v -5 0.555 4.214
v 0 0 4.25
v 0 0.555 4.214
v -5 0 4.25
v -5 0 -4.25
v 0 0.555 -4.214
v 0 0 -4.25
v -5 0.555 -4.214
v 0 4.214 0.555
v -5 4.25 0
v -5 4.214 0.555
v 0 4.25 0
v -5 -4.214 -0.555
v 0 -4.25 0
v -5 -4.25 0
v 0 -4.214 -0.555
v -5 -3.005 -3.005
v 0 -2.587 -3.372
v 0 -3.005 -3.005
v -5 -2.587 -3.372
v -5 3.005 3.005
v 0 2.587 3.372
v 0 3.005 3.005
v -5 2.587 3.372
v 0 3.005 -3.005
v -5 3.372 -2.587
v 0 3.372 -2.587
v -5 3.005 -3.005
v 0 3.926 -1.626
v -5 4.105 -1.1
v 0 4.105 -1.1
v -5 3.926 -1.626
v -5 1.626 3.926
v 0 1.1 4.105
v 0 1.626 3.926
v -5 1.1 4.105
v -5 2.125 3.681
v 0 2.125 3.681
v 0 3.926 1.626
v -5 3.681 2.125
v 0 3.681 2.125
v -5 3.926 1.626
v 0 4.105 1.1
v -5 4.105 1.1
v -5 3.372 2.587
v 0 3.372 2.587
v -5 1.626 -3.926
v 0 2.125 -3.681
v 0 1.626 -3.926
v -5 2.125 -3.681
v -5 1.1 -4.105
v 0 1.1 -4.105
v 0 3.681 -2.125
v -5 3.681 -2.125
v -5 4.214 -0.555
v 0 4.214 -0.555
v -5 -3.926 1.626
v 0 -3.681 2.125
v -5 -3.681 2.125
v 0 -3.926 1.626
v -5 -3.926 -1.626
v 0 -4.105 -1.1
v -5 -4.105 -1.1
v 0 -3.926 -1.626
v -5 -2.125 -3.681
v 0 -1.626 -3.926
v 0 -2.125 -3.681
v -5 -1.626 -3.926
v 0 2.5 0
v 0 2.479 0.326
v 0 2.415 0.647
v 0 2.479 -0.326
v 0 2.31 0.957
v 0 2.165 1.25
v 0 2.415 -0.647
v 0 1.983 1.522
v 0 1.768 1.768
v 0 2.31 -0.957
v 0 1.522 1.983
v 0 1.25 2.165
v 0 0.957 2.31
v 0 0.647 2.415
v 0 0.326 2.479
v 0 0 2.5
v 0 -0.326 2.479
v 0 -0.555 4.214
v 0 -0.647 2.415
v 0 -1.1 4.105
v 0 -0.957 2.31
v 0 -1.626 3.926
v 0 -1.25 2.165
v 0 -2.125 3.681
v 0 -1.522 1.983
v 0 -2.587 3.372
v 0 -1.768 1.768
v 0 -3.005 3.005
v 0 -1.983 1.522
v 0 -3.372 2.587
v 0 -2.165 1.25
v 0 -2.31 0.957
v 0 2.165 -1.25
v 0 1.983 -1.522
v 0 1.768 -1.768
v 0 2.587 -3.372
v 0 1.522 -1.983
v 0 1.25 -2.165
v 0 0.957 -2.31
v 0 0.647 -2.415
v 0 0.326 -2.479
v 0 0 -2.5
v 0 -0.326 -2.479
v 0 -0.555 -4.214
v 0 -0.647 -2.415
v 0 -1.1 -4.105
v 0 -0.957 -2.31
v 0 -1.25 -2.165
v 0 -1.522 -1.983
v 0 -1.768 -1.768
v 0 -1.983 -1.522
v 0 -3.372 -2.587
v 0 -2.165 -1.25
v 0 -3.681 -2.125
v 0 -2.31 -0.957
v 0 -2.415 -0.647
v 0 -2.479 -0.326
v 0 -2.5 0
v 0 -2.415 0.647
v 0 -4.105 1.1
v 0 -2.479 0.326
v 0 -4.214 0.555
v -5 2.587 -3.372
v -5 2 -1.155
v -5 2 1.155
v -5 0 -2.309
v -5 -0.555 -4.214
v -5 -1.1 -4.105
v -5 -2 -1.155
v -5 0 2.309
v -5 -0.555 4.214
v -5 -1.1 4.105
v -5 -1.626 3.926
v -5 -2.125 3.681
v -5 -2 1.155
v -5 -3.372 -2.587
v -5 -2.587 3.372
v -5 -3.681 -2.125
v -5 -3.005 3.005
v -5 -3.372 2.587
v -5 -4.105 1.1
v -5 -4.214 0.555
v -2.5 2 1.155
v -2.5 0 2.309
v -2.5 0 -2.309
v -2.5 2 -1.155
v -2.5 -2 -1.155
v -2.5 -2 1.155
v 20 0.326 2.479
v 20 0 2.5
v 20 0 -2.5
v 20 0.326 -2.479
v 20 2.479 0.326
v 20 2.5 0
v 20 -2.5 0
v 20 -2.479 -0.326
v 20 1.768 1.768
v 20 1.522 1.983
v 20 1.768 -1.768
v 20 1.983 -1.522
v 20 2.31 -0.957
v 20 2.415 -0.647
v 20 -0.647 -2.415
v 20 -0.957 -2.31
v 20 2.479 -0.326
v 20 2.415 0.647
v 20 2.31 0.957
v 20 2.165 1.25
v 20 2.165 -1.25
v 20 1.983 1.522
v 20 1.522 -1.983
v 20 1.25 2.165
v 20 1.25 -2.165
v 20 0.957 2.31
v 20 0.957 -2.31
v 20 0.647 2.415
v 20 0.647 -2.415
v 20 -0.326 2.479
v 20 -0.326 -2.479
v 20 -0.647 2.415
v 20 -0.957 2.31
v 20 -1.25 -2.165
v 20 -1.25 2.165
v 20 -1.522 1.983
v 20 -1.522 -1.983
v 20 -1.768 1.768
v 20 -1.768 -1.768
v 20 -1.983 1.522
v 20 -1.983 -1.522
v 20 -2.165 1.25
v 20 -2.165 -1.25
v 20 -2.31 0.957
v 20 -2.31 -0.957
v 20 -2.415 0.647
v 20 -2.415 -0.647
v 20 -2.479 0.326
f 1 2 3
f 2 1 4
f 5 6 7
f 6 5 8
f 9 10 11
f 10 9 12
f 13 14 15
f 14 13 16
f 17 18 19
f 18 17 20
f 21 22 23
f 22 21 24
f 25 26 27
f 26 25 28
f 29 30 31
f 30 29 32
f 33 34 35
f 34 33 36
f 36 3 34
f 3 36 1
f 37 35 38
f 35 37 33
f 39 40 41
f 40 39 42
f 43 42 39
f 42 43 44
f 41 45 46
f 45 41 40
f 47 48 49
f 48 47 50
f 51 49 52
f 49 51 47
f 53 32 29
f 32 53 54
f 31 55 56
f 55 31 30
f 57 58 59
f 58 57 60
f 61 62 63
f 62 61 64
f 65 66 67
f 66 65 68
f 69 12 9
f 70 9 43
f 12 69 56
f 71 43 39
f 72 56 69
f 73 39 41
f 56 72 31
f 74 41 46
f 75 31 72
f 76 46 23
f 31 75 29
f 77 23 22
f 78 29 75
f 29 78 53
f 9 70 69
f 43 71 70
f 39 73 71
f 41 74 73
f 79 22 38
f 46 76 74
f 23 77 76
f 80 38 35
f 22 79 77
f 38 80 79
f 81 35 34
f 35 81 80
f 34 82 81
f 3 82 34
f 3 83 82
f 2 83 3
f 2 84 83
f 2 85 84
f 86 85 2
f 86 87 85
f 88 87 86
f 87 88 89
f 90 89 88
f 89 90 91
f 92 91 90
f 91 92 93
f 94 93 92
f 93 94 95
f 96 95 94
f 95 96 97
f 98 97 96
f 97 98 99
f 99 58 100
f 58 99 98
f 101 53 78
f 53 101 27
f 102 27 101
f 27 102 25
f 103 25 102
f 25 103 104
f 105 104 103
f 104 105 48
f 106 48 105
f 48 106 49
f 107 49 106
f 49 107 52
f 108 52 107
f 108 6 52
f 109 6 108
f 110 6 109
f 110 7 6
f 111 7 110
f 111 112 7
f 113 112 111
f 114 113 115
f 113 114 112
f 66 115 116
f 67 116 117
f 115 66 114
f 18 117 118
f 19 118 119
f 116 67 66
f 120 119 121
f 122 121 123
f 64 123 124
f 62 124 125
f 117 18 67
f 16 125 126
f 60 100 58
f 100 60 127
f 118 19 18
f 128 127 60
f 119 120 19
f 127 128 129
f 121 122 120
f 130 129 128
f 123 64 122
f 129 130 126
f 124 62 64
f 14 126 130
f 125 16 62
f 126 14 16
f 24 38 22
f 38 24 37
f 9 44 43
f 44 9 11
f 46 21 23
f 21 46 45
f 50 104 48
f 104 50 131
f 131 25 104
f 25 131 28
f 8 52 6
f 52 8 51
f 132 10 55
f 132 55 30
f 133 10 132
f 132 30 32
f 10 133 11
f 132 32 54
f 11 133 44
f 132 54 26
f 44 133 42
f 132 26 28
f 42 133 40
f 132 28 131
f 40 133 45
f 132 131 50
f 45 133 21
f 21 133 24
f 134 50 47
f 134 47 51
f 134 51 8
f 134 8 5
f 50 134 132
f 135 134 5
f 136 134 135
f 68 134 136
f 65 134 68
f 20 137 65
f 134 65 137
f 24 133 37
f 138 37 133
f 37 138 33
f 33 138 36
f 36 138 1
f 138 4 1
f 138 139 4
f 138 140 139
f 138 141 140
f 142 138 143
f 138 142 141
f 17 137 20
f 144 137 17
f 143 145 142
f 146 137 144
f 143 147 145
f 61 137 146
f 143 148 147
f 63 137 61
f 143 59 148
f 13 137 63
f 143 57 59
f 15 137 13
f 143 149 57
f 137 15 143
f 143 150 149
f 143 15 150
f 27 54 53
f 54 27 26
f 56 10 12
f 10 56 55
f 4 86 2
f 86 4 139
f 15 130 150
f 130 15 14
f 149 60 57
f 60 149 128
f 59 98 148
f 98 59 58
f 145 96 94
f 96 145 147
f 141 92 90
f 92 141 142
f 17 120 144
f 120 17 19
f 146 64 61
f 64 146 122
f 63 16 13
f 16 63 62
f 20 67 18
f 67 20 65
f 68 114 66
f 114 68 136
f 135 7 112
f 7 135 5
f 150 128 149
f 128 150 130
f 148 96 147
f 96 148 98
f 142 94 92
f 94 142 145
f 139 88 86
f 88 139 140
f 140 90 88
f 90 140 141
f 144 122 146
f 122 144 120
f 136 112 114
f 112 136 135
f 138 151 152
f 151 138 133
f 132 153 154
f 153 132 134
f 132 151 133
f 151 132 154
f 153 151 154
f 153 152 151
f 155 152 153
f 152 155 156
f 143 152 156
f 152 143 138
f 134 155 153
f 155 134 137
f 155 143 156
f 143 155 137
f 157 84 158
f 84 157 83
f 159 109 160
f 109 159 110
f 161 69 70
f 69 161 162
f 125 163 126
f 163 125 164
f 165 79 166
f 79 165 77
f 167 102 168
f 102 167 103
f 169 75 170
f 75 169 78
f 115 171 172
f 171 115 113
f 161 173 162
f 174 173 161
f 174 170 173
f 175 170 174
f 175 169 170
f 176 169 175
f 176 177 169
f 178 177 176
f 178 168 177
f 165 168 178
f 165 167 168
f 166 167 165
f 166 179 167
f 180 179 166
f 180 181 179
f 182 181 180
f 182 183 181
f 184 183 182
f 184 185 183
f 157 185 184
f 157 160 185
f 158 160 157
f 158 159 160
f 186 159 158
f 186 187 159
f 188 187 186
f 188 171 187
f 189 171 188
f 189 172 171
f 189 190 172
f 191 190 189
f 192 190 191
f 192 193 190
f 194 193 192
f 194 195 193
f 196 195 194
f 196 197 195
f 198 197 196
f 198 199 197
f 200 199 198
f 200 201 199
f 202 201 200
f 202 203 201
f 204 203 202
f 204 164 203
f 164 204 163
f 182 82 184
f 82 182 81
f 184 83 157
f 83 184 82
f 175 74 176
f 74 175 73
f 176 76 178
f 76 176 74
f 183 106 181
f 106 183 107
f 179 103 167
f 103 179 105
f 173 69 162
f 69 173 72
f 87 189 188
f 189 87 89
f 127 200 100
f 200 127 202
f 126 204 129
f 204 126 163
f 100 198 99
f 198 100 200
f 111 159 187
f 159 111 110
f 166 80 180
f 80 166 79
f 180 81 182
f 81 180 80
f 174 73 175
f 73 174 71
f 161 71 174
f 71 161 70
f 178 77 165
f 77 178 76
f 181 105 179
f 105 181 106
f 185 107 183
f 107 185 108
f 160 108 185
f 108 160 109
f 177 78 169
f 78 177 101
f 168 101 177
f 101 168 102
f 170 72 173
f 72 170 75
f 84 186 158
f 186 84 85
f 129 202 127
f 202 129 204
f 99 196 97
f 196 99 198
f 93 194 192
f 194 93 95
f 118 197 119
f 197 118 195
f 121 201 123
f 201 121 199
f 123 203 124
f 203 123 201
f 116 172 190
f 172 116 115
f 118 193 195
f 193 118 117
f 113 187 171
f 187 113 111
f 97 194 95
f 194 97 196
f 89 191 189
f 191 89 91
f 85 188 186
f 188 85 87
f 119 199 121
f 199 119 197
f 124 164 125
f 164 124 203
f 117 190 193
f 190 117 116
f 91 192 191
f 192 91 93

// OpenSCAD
// file: ../../lib/nutsnbolts/data-access.scad
// Norm Nuts and Bolts - a OpenSCAD library
// Copyright (C) 2012  Johannes Kneer

// This program is free software: you can redistribute it and/or modify
// it under the terms of the GNU General Public License as published by
// the Free Software Foundation, either version 3 of the License, or
// (at your option) any later version.

// This program is distributed in the hope that it will be useful,
// but WITHOUT ANY WARRANTY; without even the implied warranty of
// MERCHANTABILITY or FITNESS FOR A PARTICULAR PURPOSE.  See the
// GNU General Public License for more details.

// You should have received a copy of the GNU General Public License
// along with this program.  If not, see <http://www.gnu.org/licenses/>.


// DATABASE ACCESS FUNCTIONS AND CONSTANTS



// == CONSTANTS ==

// screw table access keys
_NB_S_DESC            = 0;
_NB_S_FAMKEY			    = 1;
_NB_S_LENGTH          = 2;
_NB_S_NOTHREAD_LENGTH = 3;

_NB_F_DESC			      = 0;
_NB_F_OUTER_DIA       = 1;
_NB_F_INNER_DIA       = 2;
_NB_F_LEAD            = 3;
_NB_F_KEY             = 4;
_NB_F_KEY_DEPTH       = 5;
_NB_F_HEAD_HEIGHT     = 6;
_NB_F_HEAD_DIA        = 7;
_NB_F_NUT_KEY         = 8;
_NB_F_NUT_HEIGHT      = 9;
_NB_F_PITCH_FINE      = 10;
_NB_F_PITCH_MEDIUM    = 11;
_NB_F_PITCH_COARSE    = 12;


// == FUNCTIONS ==

// _get_screw("descriptor")   with descriptor = M8x25
//   find the line for a general object in the data matrix

function _get_screw(n) = data_screw[search([n], data_screw)[0]];
function _get_screw_fam(n) = data_screw_fam[search([_get_screw(n)[_NB_S_FAMKEY]], data_screw_fam)[0]];

function _get_fam(n) = data_screw_fam[search([n], data_screw_fam)[0]];


// _get_XXXXX("descriptor") functions
// find a single property in the database

function _get_desc(n)        = _get_screw(n)[_NB_S_DESC];
function _get_famkey(n)         = _get_screw(n)[_NB_S_FAMKEY];
function _get_length(n)      = _get_screw(n)[_NB_S_LENGTH];
function _get_nt_length(n)   = _get_screw(n)[_NB_S_NOTHREAD_LENGTH];

function _get_outer_dia(n)   = _get_screw_fam(n)[_NB_F_OUTER_DIA];
function _get_inner_dia(n)   = _get_screw_fam(n)[_NB_F_INNER_DIA];
function _get_lead(n)        = _get_screw_fam(n)[_NB_F_LEAD];
function _get_head_height(n) = _get_screw_fam(n)[_NB_F_HEAD_HEIGHT];
function _get_head_dia(n)    = _get_screw_fam(n)[_NB_F_HEAD_DIA];
function _get_nut_key(n)     = _get_screw_fam(n)[_NB_F_NUT_KEY];
function _get_nut_height(n)  = _get_screw_fam(n)[_NB_F_NUT_HEIGHT];
function _get_fine_pitch(n)  = _get_screw_fam(n)[_NB_F_PITCH_FINE];
function _get_medium_pitch(n)  = _get_screw_fam(n)[_NB_F_PITCH_MEDIUM];
function _get_coarse_pitch(n)  = _get_screw_fam(n)[_NB_F_PITCH_COARSE];
// main file
/**********************************************************************************************************************
 **
 ** parts/vitamins/screw_M5x20.scad
 **
 ** This file renders a screw of the dimensions specified by the file name.
 **
 **********************************************************************************************************************/

include <../../lib/nutsnbolts/cyl_head_bolt.scad>;

$fn = 48;
rotate([0, -90, 0])
	screw("M5x20"); 
